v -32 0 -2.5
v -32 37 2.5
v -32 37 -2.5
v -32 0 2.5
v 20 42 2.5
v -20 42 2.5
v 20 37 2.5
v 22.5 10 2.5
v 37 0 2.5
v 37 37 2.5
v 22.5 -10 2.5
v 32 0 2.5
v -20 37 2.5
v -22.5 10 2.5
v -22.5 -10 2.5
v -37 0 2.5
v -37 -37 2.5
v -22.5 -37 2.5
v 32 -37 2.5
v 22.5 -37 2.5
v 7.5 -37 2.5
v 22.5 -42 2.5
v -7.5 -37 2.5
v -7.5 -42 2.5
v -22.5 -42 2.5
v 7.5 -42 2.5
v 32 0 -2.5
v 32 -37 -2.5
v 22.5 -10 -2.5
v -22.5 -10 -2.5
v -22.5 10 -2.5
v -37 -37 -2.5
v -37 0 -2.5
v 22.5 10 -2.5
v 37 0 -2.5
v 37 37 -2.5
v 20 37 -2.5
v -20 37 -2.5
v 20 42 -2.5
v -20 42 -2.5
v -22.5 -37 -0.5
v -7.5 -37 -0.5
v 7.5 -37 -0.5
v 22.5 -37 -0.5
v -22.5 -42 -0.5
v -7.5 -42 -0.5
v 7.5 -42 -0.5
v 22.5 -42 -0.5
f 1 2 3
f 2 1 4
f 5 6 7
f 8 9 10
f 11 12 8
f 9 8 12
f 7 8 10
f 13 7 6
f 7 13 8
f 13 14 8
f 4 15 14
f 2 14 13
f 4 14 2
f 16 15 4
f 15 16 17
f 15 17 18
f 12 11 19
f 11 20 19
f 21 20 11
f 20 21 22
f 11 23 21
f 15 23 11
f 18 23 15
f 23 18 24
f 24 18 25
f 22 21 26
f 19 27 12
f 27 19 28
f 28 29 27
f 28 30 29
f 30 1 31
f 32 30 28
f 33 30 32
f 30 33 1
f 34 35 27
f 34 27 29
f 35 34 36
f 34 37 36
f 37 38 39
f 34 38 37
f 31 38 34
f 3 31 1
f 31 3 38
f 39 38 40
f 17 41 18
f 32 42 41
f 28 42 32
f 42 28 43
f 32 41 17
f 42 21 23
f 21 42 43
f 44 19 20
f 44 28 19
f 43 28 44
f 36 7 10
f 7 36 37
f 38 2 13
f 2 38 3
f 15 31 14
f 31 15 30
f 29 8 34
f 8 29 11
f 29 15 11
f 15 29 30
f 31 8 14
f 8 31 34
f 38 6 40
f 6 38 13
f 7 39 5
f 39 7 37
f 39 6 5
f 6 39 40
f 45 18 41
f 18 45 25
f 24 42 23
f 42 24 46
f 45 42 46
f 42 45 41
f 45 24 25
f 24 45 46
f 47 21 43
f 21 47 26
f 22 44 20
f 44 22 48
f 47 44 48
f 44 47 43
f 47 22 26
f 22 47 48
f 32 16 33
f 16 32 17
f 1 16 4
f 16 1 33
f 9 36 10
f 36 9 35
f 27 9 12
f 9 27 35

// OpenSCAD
difference() {
    //base mur
    color("green") cube([64, 74, 5], center=true);
    cube([45, 20, 5], center=true);
}

//encoche haut
translate([0, 39.5, 0]) cube([40, 5, 5], center=true);

//encoche bas
translate([-15, -39.5, 1]) cube([15, 5, 3], center=true);
translate([15, -39.5, 1]) cube([15, 5, 3], center=true);

//coté
translate([-34.5, -18.5, 0]) cube([5, 37, 5], center=true);
translate([34.5, 18.5, 0]) cube([5, 37, 5], center=true);
